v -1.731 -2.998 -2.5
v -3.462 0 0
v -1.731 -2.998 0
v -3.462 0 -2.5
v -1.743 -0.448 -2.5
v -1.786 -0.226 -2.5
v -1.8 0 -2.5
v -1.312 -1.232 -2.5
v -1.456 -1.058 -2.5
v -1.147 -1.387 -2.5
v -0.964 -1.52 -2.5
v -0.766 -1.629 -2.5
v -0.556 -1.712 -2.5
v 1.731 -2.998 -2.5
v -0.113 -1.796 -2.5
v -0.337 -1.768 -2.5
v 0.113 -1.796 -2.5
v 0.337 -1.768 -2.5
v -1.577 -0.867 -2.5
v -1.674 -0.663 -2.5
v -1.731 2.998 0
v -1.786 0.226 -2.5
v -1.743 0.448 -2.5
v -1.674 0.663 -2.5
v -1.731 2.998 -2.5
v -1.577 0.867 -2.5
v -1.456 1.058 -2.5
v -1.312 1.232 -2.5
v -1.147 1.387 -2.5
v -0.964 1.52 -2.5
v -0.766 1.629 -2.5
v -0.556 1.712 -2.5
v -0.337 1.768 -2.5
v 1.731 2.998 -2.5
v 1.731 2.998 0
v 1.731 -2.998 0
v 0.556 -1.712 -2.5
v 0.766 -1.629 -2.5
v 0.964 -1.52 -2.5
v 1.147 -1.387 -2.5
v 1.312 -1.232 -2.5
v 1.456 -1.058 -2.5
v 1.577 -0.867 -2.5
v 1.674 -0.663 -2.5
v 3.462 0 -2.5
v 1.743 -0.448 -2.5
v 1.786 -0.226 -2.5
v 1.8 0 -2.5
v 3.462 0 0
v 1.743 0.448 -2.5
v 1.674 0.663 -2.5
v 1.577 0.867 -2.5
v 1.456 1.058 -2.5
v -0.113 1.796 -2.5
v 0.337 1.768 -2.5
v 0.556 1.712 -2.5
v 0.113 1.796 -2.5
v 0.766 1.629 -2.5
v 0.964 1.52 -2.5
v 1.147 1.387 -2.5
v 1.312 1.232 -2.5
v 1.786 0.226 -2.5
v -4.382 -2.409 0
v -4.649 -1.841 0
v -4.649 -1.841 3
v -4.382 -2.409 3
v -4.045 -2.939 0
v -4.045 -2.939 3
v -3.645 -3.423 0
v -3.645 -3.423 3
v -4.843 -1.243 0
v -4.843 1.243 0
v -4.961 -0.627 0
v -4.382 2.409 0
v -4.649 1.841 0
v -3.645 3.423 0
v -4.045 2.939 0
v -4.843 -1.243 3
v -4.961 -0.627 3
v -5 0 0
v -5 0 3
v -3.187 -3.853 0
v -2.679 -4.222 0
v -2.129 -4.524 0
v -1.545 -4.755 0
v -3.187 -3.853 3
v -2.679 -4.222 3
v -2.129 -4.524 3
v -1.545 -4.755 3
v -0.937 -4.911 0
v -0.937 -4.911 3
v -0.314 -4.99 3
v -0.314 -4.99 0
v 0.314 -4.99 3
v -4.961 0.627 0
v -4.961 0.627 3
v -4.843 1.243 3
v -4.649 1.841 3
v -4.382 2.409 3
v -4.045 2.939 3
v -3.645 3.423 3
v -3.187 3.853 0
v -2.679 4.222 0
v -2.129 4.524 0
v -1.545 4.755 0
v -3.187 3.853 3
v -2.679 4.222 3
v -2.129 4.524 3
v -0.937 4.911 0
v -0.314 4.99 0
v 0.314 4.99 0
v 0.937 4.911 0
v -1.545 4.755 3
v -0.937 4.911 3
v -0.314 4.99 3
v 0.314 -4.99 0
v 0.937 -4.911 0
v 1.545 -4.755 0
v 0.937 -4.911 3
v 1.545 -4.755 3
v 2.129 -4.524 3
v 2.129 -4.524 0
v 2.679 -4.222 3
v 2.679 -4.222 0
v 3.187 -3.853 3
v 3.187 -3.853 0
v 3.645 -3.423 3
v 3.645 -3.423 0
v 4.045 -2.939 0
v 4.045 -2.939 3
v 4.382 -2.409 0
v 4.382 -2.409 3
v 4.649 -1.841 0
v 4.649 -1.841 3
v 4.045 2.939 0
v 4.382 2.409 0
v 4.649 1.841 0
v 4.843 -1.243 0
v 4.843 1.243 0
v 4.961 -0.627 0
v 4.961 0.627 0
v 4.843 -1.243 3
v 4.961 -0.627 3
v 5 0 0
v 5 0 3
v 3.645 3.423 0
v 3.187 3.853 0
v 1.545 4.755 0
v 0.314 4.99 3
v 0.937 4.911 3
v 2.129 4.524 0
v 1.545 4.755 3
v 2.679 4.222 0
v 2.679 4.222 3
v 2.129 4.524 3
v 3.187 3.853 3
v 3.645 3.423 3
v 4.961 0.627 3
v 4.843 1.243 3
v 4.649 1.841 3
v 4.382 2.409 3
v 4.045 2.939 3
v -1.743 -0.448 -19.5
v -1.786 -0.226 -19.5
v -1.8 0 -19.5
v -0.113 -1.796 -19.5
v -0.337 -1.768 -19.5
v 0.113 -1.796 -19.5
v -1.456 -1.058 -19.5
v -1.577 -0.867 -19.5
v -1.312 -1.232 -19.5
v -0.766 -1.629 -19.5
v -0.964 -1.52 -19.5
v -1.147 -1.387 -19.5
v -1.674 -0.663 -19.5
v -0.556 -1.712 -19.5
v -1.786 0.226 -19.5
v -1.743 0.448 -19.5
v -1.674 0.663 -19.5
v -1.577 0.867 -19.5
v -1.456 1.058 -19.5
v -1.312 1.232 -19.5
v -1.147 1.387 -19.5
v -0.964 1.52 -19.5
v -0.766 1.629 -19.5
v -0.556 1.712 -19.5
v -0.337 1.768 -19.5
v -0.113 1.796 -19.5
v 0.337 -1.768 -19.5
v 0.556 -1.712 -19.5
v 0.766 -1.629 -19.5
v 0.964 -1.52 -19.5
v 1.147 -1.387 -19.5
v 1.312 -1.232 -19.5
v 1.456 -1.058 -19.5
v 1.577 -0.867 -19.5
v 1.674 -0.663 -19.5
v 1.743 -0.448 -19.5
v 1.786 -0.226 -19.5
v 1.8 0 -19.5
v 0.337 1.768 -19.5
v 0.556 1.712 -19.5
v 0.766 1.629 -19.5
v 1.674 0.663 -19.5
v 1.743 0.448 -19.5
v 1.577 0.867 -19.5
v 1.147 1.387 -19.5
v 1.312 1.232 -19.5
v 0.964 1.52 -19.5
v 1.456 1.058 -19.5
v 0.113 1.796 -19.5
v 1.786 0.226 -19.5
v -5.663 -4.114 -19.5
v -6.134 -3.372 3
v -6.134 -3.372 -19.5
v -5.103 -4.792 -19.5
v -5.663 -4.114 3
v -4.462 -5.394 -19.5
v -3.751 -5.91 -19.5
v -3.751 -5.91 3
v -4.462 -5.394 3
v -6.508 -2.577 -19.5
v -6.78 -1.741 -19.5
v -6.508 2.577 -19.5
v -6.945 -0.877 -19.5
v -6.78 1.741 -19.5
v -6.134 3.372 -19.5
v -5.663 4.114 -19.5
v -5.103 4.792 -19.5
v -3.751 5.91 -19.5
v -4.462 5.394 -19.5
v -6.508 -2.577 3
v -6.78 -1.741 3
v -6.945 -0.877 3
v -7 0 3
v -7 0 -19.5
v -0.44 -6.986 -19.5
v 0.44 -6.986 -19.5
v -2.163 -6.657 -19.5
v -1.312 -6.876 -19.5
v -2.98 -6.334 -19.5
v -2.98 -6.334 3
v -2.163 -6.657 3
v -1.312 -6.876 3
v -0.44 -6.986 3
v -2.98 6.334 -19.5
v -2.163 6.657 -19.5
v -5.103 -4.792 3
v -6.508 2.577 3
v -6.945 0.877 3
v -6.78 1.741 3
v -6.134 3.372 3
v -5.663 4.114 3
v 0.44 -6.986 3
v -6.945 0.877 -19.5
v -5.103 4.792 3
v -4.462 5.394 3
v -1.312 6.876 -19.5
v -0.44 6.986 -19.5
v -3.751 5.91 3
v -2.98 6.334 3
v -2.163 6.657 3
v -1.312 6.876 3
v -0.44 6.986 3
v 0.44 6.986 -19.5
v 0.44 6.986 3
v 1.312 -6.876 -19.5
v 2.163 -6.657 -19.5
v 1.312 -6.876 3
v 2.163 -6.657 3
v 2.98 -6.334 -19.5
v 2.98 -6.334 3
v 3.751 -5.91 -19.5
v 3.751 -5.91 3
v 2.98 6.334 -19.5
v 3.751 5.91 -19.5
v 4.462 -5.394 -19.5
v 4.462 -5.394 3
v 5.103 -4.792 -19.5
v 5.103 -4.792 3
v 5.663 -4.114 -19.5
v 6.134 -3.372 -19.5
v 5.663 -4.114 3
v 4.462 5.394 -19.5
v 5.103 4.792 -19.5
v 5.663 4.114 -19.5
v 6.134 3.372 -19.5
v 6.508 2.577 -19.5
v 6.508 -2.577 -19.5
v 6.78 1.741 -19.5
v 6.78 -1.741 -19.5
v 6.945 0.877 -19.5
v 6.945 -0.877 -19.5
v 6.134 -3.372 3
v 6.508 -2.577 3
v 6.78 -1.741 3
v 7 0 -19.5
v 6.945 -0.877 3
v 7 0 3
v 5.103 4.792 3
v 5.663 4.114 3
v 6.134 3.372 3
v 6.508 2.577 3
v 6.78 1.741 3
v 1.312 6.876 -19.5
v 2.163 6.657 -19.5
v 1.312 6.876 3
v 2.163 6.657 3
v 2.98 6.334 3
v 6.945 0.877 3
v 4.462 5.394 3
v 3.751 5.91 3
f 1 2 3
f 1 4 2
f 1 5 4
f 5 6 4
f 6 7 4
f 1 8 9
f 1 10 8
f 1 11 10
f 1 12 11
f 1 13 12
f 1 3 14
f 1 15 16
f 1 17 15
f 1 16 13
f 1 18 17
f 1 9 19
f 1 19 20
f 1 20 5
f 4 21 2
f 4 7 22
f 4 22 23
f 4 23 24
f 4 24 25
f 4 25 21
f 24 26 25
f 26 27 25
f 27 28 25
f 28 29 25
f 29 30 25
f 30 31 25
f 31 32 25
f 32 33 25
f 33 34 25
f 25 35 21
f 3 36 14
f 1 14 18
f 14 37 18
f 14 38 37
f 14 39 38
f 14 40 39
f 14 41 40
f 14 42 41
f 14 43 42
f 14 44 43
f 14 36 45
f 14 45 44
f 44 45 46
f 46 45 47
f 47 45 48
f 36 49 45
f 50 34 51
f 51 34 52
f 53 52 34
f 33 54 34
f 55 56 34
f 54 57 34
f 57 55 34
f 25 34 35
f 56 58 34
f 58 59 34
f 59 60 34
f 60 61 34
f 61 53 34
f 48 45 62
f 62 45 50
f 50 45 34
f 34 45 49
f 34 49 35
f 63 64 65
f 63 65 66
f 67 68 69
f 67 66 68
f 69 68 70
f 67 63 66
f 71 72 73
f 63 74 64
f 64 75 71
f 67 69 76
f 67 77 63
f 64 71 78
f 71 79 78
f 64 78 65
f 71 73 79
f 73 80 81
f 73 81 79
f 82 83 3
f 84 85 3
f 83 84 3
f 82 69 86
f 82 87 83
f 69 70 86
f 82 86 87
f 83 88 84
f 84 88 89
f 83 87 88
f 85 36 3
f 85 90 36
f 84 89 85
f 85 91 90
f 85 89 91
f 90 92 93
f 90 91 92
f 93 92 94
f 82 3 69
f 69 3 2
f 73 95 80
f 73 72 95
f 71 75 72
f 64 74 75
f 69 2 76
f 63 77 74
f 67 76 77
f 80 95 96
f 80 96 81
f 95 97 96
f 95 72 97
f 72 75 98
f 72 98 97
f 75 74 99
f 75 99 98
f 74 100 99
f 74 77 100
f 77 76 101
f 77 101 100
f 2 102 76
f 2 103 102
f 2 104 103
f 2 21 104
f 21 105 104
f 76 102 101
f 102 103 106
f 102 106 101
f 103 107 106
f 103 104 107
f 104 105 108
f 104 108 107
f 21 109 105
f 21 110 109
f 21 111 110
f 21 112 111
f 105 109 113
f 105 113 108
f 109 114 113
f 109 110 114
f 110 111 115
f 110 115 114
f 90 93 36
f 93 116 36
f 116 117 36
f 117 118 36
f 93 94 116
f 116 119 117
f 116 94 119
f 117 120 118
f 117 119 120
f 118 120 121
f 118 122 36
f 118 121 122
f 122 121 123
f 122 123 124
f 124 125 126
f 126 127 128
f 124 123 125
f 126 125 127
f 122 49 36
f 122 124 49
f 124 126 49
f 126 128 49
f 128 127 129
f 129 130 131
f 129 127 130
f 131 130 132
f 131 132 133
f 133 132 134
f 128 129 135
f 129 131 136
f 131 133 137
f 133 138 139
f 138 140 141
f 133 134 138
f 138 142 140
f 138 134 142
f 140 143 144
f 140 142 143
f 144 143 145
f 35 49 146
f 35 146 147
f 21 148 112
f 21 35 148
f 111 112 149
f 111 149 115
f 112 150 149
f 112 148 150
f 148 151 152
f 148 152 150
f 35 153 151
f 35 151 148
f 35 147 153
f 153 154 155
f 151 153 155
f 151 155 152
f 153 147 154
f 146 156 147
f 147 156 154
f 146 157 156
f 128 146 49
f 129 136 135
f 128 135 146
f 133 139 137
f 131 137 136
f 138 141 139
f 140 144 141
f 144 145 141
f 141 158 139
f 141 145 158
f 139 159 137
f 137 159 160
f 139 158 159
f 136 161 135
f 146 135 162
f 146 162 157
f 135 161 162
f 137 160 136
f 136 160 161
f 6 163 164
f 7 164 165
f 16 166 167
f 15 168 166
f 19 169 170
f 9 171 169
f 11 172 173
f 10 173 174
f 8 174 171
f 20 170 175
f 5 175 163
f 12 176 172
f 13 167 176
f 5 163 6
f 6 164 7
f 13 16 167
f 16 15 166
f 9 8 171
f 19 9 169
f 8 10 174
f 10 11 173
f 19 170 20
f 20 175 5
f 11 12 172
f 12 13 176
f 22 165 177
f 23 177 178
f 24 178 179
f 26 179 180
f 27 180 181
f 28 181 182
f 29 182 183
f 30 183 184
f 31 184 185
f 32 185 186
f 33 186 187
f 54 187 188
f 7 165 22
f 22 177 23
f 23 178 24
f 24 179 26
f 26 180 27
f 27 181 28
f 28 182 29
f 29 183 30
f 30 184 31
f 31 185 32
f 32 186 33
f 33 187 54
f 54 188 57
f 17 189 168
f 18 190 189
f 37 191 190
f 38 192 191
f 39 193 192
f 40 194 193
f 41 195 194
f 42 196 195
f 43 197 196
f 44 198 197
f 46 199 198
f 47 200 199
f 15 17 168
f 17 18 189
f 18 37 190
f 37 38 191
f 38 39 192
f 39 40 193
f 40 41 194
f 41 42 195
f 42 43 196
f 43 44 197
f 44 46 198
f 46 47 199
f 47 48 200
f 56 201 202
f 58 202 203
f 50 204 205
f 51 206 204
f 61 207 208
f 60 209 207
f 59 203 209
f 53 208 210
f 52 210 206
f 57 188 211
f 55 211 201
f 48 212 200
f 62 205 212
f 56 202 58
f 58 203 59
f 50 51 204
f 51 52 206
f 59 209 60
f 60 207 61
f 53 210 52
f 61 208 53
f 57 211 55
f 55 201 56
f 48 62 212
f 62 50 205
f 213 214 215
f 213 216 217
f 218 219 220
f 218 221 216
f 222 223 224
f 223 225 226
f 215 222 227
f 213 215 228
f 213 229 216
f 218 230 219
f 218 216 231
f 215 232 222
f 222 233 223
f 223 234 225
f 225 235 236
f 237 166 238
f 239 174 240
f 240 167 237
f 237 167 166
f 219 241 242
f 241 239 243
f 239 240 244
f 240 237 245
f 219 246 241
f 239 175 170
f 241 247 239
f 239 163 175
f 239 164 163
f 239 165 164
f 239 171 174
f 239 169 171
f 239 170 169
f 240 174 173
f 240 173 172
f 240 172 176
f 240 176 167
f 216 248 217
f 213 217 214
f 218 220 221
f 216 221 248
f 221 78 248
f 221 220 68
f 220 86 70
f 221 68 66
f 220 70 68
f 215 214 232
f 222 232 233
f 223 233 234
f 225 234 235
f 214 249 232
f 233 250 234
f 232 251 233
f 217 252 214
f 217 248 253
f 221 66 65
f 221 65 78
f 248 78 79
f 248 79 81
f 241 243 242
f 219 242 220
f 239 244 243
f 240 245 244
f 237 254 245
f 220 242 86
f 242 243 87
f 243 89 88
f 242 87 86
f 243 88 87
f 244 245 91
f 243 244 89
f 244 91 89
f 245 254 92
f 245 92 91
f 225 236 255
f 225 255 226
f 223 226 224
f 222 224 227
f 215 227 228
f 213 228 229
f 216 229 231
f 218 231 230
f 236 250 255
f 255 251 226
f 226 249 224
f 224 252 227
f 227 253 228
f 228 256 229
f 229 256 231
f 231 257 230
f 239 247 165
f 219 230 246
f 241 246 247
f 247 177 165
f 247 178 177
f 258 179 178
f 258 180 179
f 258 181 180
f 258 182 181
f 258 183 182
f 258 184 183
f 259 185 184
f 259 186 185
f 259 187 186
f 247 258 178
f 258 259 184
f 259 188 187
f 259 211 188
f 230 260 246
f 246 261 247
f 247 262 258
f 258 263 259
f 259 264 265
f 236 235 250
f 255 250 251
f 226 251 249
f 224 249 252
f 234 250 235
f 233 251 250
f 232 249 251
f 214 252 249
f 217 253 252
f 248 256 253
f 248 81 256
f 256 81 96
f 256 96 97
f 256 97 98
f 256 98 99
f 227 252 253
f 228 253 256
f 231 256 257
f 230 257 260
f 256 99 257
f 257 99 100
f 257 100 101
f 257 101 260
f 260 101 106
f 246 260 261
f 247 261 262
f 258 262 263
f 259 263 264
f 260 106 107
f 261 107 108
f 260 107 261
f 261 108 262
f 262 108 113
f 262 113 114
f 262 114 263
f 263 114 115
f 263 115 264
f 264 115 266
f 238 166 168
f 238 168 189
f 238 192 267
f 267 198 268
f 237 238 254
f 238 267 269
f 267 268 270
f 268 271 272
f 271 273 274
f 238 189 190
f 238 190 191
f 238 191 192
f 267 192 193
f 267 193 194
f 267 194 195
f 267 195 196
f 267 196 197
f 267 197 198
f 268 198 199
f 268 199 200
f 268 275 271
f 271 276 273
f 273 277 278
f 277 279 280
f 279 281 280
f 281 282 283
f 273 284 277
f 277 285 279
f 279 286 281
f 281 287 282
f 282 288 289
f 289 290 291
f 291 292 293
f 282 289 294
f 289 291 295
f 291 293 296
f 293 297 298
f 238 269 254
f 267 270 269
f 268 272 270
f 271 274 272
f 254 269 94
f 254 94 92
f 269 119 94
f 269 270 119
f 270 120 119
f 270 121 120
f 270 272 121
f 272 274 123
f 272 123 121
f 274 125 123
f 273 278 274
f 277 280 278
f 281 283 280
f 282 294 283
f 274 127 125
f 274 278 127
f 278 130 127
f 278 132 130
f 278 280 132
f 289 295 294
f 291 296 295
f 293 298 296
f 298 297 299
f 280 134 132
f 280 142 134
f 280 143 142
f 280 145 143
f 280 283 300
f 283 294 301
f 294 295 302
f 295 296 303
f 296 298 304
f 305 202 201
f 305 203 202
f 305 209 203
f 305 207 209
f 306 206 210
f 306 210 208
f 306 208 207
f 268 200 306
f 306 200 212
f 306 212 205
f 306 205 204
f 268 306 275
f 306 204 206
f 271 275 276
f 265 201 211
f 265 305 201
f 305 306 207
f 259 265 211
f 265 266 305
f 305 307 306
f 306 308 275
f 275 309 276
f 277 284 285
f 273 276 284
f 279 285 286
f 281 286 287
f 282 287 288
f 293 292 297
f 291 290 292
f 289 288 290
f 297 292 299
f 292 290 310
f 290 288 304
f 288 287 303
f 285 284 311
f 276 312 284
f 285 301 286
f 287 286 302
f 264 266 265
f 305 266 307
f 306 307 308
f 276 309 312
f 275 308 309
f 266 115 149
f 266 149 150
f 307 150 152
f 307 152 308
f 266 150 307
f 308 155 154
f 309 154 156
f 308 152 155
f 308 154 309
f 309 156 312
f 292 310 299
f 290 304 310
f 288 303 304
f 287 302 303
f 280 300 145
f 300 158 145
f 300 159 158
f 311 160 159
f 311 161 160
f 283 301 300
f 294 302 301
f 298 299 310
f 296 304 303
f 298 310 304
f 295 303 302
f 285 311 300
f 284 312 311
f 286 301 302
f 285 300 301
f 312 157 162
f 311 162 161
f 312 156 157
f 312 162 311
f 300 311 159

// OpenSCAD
$fn = 50;


difference() {
	union() {
		translate(v = [0, 0, -19.5000000000]) {
			cylinder(h = 22.5000000000, r = 7.0000000000);
		}
	}
	union() {
		translate(v = [0, 0, 0]) {
			rotate(a = [0, 0, 0]) {
				difference() {
					union() {
						translate(v = [0, 0, -2.5000000000]) {
							linear_extrude(height = 2.5000000000) {
								polygon(points = [[3.4620000000, 0.0000000000], [1.7310000000, 2.9981799479], [-1.7310000000, 2.9981799479], [-3.4620000000, 0.0000000000], [-1.7310000000, -2.9981799479], [1.7310000000, -2.9981799479]]);
							}
						}
					}
					union();
				}
			}
		}
		#cylinder(h = 3, r = 5.0000000000);
		#translate(v = [0, 0, -100.0000000000]) {
			cylinder(h = 200, r = 1.8000000000);
		}
	}
}
